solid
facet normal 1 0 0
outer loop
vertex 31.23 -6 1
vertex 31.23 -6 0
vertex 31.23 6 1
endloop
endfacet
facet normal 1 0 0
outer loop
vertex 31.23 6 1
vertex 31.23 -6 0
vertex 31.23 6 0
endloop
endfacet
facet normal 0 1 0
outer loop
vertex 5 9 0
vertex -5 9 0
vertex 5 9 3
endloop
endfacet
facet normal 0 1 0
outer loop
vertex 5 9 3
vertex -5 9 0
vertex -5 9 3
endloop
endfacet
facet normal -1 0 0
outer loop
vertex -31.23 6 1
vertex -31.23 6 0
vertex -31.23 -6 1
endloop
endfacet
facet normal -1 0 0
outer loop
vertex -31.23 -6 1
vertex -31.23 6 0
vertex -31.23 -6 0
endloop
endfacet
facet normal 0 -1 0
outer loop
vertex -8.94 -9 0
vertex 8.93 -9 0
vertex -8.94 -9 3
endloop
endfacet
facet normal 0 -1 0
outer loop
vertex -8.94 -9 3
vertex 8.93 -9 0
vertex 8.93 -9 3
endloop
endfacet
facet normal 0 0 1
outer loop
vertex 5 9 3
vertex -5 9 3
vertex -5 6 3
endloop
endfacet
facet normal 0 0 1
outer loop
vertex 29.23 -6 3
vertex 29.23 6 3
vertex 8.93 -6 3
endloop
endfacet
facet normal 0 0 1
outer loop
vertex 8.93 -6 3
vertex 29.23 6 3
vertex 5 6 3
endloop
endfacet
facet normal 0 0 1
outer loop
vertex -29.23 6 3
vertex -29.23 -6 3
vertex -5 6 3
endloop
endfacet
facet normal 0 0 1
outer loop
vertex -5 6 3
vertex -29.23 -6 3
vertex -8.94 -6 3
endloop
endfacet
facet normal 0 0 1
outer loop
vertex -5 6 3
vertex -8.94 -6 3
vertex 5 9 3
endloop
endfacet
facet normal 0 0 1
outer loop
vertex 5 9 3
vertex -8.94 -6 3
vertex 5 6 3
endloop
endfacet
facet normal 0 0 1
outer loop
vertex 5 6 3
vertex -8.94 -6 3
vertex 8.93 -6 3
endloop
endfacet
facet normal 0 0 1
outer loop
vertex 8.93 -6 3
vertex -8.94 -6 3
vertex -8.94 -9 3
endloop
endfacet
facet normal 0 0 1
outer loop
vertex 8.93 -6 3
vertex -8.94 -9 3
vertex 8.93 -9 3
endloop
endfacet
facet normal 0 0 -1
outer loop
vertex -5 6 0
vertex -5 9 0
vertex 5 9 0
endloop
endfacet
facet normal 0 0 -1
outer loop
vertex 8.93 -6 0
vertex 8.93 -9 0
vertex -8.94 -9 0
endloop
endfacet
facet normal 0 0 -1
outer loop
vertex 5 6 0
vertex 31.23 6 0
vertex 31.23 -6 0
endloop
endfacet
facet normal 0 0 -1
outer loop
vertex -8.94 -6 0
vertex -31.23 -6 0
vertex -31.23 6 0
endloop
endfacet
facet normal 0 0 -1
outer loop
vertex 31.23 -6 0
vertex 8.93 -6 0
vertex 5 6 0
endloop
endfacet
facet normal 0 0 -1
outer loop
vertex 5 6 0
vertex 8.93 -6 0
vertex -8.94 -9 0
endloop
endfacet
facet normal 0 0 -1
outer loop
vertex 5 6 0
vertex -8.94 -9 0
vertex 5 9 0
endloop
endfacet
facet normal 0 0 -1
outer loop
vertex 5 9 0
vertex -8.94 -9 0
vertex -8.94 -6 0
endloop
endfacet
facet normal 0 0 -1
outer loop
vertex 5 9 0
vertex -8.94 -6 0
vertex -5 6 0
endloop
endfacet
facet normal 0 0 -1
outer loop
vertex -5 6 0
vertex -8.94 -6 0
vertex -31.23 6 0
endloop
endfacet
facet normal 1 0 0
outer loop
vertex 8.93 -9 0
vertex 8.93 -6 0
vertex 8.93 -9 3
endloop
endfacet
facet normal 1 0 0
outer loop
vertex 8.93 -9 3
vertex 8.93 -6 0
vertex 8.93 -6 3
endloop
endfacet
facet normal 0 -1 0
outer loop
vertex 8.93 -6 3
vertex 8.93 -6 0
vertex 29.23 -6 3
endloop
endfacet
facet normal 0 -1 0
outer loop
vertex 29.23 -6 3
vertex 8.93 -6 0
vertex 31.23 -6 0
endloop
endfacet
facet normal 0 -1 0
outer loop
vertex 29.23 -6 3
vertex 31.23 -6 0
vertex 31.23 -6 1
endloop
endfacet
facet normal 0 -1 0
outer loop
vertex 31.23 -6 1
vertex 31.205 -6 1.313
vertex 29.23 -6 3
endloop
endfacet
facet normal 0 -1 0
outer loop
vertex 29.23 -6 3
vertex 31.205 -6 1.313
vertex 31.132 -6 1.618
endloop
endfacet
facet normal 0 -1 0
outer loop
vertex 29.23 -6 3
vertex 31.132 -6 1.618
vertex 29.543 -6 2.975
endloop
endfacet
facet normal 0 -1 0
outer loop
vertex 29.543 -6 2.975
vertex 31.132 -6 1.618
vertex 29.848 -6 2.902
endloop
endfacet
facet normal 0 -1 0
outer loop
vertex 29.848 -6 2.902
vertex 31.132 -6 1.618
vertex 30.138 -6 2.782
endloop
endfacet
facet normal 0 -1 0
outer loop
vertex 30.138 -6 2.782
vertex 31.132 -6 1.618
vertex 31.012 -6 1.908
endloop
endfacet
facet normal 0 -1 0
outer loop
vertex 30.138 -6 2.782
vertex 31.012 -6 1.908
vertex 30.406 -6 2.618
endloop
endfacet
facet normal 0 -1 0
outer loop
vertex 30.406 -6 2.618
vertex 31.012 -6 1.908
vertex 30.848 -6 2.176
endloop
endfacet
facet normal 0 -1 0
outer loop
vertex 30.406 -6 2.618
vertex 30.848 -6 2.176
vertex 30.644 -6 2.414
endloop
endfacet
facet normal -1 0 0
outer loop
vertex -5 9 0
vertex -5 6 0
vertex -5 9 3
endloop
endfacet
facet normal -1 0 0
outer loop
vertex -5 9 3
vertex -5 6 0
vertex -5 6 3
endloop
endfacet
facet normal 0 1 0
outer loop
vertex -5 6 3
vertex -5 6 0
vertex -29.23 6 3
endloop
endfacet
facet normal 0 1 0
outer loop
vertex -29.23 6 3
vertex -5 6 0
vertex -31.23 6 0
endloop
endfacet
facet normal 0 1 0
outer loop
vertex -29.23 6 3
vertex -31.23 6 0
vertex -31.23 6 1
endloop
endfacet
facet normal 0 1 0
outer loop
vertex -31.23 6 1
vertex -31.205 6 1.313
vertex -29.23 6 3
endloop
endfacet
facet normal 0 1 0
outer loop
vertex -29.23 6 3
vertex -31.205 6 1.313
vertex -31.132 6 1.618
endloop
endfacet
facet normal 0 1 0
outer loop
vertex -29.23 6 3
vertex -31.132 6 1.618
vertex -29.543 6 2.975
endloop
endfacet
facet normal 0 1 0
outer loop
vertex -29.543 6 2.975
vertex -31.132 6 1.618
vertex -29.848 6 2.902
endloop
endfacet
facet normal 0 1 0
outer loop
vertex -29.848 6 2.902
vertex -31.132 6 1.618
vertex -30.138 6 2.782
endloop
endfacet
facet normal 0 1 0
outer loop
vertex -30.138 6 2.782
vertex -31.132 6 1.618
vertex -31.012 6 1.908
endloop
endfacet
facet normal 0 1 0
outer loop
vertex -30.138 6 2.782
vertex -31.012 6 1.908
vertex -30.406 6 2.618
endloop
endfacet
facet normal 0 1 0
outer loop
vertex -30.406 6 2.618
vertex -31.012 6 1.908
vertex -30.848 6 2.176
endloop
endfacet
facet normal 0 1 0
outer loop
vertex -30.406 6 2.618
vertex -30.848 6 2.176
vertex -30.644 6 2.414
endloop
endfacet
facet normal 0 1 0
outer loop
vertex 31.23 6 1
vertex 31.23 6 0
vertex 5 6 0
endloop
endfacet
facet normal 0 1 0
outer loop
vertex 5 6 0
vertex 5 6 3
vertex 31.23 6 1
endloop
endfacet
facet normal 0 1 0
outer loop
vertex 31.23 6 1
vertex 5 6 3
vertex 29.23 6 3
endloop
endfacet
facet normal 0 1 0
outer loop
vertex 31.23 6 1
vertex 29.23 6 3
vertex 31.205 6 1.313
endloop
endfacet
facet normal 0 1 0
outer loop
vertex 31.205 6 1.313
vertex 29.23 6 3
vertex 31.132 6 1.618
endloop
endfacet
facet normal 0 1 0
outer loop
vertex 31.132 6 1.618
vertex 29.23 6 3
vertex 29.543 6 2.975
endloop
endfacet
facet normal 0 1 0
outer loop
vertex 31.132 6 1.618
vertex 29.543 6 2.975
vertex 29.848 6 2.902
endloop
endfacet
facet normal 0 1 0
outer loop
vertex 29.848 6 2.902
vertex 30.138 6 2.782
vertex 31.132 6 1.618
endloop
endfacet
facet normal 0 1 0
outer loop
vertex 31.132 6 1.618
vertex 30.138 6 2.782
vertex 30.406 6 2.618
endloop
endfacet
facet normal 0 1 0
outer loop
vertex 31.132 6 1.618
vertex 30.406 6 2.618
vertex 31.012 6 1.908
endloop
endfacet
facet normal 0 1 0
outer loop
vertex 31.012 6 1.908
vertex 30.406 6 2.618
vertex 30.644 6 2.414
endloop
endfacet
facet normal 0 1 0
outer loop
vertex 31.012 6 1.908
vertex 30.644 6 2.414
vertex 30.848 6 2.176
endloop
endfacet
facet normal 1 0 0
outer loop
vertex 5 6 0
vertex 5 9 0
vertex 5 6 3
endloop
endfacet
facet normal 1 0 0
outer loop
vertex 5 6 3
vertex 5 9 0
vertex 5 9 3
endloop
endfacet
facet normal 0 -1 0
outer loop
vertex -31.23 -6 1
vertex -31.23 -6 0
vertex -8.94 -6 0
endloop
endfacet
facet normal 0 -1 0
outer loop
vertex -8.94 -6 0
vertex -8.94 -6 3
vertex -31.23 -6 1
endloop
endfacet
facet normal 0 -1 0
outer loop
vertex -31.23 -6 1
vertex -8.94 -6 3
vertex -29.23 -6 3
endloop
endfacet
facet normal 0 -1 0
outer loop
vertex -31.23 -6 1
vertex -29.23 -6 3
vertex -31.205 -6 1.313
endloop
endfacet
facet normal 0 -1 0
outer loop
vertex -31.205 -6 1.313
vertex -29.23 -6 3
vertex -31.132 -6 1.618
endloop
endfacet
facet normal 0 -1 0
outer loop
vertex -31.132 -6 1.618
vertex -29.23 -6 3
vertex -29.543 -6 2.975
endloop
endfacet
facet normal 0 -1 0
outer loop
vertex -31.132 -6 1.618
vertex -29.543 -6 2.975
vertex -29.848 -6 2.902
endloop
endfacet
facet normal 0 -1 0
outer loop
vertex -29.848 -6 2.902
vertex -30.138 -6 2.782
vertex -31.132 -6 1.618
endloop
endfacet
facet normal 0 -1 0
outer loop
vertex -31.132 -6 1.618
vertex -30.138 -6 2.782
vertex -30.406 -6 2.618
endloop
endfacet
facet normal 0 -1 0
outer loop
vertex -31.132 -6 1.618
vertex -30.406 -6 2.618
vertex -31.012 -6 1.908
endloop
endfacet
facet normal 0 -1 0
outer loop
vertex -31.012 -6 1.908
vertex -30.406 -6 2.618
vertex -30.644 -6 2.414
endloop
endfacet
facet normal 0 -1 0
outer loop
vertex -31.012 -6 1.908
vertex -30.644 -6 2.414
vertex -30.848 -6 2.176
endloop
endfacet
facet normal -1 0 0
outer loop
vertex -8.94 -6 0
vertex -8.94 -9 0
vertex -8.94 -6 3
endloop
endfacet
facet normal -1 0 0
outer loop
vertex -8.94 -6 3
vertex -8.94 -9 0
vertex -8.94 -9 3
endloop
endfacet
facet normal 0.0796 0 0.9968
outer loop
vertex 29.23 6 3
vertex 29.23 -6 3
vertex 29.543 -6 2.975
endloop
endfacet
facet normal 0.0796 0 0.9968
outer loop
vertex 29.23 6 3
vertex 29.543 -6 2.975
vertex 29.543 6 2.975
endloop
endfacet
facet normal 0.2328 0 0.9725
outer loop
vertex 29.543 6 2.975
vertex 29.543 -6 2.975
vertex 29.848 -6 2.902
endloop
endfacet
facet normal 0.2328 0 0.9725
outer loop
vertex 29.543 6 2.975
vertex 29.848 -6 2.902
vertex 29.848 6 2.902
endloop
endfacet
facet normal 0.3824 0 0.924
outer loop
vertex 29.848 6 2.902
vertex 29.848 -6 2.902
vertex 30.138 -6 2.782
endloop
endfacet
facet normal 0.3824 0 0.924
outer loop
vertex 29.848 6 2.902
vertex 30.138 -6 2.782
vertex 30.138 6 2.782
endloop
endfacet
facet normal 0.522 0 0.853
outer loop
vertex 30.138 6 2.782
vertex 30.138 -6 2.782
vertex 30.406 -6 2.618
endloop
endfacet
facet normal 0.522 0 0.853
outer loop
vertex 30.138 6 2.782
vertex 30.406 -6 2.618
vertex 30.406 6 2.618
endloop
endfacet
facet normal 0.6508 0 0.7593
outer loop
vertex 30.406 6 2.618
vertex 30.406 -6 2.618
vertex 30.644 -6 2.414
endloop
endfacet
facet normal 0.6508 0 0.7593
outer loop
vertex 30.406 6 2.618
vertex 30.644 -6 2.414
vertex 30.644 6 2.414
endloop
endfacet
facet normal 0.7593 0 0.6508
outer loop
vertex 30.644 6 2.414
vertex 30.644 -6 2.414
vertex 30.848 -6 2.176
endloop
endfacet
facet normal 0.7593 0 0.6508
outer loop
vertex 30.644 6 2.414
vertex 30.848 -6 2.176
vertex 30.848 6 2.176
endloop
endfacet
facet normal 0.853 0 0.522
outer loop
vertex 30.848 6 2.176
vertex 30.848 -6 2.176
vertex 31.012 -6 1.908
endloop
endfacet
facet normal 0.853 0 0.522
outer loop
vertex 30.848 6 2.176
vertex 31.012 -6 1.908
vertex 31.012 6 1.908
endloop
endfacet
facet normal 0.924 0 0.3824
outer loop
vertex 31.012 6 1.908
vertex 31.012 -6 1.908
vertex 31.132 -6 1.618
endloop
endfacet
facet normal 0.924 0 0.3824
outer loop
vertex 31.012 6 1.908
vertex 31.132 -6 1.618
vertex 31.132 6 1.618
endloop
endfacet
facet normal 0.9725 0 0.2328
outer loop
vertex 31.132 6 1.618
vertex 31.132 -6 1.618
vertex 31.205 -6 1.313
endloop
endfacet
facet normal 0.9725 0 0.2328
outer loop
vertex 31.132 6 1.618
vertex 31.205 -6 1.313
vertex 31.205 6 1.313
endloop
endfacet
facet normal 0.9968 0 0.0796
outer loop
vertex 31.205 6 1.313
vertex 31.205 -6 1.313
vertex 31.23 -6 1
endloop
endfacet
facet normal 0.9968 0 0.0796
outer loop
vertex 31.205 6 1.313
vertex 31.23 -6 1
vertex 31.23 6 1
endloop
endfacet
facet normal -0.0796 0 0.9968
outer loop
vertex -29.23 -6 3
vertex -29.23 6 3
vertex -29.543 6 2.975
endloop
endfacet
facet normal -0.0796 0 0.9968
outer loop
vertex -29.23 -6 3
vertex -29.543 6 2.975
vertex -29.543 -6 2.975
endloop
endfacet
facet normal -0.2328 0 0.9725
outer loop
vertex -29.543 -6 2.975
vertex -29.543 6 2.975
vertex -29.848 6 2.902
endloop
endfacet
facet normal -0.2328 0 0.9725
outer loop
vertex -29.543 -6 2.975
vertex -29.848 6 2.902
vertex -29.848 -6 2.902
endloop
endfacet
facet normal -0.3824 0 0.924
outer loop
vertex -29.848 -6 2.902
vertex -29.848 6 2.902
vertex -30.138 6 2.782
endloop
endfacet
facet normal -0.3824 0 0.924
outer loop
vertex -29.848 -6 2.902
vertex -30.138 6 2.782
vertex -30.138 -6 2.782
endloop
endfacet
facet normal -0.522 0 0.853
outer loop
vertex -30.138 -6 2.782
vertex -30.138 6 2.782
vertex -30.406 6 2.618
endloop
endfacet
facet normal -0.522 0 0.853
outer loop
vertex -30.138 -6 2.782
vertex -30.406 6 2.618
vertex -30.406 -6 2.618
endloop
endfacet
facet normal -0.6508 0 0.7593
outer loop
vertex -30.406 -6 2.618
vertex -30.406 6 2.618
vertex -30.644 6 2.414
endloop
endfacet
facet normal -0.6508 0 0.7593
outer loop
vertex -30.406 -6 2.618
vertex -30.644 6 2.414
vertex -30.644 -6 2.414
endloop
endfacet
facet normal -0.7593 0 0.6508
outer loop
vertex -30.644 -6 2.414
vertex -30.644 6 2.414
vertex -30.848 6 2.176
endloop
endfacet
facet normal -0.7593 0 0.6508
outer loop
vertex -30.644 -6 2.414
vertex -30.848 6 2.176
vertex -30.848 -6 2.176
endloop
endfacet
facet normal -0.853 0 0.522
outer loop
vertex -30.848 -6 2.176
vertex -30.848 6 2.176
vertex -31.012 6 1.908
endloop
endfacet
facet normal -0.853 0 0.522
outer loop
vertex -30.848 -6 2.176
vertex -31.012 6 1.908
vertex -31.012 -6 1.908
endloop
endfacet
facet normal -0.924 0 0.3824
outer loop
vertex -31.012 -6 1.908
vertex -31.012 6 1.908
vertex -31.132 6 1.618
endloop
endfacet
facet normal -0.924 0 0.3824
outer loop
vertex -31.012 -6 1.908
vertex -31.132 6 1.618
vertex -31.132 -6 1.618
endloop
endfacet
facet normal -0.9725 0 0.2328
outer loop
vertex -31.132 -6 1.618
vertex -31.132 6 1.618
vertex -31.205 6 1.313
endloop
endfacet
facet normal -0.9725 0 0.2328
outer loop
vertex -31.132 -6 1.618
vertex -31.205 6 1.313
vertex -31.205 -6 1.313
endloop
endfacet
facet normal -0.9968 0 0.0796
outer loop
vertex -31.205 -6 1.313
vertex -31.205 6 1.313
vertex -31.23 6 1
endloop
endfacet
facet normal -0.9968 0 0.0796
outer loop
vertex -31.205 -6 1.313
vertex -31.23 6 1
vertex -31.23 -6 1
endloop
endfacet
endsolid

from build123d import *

# Parameters (mm, degrees)
SKETCH1_W           = 62.46
SKETCH1_H           = 18
BOSS_EXTRUDE1_DEPTH = 3
SKETCH2_W           = 22.3
SKETCH2_H           = 3
SKETCH2_W_2         = 22.29
SKETCH2_W_3         = 26.23
CUT_EXTRUDE1_DEPTH  = 3
FILLET1_R           = 2
FILLET2_R           = 2


with BuildPart() as part:
    # Sketch1 → Boss-Extrude1 (new body)
    with BuildSketch(Plane.XY):
        Rectangle(SKETCH1_W, SKETCH1_H)
    extrude(amount=BOSS_EXTRUDE1_DEPTH)

    # Sketch2 → Cut-Extrude1 (cut)
    with BuildSketch(Plane.XY.offset(3)):
        with Locations((20.08, -7.5)):
            Rectangle(SKETCH2_W, SKETCH2_H)
        with Locations((-20.085, -7.5)):
            Rectangle(SKETCH2_W_2, SKETCH2_H)
        with Locations((18.115, 7.5)):
            Rectangle(SKETCH2_W_3, SKETCH2_H)
        with Locations((-18.115, 7.5)):
            Rectangle(SKETCH2_W_3, SKETCH2_H)
    extrude(amount=-CUT_EXTRUDE1_DEPTH, mode=Mode.SUBTRACT)

    # Fillet1
    fillet1_edges = [part.edges().sort_by_distance(p)[0] for p in [
        (31.23, 0, 3),
    ]]
    fillet(fillet1_edges, radius=FILLET1_R)

    # Fillet2
    fillet2_edges = [part.edges().sort_by_distance(p)[0] for p in [
        (-31.23, 0, 3),
    ]]
    fillet(fillet2_edges, radius=FILLET2_R)


solid = part.part
